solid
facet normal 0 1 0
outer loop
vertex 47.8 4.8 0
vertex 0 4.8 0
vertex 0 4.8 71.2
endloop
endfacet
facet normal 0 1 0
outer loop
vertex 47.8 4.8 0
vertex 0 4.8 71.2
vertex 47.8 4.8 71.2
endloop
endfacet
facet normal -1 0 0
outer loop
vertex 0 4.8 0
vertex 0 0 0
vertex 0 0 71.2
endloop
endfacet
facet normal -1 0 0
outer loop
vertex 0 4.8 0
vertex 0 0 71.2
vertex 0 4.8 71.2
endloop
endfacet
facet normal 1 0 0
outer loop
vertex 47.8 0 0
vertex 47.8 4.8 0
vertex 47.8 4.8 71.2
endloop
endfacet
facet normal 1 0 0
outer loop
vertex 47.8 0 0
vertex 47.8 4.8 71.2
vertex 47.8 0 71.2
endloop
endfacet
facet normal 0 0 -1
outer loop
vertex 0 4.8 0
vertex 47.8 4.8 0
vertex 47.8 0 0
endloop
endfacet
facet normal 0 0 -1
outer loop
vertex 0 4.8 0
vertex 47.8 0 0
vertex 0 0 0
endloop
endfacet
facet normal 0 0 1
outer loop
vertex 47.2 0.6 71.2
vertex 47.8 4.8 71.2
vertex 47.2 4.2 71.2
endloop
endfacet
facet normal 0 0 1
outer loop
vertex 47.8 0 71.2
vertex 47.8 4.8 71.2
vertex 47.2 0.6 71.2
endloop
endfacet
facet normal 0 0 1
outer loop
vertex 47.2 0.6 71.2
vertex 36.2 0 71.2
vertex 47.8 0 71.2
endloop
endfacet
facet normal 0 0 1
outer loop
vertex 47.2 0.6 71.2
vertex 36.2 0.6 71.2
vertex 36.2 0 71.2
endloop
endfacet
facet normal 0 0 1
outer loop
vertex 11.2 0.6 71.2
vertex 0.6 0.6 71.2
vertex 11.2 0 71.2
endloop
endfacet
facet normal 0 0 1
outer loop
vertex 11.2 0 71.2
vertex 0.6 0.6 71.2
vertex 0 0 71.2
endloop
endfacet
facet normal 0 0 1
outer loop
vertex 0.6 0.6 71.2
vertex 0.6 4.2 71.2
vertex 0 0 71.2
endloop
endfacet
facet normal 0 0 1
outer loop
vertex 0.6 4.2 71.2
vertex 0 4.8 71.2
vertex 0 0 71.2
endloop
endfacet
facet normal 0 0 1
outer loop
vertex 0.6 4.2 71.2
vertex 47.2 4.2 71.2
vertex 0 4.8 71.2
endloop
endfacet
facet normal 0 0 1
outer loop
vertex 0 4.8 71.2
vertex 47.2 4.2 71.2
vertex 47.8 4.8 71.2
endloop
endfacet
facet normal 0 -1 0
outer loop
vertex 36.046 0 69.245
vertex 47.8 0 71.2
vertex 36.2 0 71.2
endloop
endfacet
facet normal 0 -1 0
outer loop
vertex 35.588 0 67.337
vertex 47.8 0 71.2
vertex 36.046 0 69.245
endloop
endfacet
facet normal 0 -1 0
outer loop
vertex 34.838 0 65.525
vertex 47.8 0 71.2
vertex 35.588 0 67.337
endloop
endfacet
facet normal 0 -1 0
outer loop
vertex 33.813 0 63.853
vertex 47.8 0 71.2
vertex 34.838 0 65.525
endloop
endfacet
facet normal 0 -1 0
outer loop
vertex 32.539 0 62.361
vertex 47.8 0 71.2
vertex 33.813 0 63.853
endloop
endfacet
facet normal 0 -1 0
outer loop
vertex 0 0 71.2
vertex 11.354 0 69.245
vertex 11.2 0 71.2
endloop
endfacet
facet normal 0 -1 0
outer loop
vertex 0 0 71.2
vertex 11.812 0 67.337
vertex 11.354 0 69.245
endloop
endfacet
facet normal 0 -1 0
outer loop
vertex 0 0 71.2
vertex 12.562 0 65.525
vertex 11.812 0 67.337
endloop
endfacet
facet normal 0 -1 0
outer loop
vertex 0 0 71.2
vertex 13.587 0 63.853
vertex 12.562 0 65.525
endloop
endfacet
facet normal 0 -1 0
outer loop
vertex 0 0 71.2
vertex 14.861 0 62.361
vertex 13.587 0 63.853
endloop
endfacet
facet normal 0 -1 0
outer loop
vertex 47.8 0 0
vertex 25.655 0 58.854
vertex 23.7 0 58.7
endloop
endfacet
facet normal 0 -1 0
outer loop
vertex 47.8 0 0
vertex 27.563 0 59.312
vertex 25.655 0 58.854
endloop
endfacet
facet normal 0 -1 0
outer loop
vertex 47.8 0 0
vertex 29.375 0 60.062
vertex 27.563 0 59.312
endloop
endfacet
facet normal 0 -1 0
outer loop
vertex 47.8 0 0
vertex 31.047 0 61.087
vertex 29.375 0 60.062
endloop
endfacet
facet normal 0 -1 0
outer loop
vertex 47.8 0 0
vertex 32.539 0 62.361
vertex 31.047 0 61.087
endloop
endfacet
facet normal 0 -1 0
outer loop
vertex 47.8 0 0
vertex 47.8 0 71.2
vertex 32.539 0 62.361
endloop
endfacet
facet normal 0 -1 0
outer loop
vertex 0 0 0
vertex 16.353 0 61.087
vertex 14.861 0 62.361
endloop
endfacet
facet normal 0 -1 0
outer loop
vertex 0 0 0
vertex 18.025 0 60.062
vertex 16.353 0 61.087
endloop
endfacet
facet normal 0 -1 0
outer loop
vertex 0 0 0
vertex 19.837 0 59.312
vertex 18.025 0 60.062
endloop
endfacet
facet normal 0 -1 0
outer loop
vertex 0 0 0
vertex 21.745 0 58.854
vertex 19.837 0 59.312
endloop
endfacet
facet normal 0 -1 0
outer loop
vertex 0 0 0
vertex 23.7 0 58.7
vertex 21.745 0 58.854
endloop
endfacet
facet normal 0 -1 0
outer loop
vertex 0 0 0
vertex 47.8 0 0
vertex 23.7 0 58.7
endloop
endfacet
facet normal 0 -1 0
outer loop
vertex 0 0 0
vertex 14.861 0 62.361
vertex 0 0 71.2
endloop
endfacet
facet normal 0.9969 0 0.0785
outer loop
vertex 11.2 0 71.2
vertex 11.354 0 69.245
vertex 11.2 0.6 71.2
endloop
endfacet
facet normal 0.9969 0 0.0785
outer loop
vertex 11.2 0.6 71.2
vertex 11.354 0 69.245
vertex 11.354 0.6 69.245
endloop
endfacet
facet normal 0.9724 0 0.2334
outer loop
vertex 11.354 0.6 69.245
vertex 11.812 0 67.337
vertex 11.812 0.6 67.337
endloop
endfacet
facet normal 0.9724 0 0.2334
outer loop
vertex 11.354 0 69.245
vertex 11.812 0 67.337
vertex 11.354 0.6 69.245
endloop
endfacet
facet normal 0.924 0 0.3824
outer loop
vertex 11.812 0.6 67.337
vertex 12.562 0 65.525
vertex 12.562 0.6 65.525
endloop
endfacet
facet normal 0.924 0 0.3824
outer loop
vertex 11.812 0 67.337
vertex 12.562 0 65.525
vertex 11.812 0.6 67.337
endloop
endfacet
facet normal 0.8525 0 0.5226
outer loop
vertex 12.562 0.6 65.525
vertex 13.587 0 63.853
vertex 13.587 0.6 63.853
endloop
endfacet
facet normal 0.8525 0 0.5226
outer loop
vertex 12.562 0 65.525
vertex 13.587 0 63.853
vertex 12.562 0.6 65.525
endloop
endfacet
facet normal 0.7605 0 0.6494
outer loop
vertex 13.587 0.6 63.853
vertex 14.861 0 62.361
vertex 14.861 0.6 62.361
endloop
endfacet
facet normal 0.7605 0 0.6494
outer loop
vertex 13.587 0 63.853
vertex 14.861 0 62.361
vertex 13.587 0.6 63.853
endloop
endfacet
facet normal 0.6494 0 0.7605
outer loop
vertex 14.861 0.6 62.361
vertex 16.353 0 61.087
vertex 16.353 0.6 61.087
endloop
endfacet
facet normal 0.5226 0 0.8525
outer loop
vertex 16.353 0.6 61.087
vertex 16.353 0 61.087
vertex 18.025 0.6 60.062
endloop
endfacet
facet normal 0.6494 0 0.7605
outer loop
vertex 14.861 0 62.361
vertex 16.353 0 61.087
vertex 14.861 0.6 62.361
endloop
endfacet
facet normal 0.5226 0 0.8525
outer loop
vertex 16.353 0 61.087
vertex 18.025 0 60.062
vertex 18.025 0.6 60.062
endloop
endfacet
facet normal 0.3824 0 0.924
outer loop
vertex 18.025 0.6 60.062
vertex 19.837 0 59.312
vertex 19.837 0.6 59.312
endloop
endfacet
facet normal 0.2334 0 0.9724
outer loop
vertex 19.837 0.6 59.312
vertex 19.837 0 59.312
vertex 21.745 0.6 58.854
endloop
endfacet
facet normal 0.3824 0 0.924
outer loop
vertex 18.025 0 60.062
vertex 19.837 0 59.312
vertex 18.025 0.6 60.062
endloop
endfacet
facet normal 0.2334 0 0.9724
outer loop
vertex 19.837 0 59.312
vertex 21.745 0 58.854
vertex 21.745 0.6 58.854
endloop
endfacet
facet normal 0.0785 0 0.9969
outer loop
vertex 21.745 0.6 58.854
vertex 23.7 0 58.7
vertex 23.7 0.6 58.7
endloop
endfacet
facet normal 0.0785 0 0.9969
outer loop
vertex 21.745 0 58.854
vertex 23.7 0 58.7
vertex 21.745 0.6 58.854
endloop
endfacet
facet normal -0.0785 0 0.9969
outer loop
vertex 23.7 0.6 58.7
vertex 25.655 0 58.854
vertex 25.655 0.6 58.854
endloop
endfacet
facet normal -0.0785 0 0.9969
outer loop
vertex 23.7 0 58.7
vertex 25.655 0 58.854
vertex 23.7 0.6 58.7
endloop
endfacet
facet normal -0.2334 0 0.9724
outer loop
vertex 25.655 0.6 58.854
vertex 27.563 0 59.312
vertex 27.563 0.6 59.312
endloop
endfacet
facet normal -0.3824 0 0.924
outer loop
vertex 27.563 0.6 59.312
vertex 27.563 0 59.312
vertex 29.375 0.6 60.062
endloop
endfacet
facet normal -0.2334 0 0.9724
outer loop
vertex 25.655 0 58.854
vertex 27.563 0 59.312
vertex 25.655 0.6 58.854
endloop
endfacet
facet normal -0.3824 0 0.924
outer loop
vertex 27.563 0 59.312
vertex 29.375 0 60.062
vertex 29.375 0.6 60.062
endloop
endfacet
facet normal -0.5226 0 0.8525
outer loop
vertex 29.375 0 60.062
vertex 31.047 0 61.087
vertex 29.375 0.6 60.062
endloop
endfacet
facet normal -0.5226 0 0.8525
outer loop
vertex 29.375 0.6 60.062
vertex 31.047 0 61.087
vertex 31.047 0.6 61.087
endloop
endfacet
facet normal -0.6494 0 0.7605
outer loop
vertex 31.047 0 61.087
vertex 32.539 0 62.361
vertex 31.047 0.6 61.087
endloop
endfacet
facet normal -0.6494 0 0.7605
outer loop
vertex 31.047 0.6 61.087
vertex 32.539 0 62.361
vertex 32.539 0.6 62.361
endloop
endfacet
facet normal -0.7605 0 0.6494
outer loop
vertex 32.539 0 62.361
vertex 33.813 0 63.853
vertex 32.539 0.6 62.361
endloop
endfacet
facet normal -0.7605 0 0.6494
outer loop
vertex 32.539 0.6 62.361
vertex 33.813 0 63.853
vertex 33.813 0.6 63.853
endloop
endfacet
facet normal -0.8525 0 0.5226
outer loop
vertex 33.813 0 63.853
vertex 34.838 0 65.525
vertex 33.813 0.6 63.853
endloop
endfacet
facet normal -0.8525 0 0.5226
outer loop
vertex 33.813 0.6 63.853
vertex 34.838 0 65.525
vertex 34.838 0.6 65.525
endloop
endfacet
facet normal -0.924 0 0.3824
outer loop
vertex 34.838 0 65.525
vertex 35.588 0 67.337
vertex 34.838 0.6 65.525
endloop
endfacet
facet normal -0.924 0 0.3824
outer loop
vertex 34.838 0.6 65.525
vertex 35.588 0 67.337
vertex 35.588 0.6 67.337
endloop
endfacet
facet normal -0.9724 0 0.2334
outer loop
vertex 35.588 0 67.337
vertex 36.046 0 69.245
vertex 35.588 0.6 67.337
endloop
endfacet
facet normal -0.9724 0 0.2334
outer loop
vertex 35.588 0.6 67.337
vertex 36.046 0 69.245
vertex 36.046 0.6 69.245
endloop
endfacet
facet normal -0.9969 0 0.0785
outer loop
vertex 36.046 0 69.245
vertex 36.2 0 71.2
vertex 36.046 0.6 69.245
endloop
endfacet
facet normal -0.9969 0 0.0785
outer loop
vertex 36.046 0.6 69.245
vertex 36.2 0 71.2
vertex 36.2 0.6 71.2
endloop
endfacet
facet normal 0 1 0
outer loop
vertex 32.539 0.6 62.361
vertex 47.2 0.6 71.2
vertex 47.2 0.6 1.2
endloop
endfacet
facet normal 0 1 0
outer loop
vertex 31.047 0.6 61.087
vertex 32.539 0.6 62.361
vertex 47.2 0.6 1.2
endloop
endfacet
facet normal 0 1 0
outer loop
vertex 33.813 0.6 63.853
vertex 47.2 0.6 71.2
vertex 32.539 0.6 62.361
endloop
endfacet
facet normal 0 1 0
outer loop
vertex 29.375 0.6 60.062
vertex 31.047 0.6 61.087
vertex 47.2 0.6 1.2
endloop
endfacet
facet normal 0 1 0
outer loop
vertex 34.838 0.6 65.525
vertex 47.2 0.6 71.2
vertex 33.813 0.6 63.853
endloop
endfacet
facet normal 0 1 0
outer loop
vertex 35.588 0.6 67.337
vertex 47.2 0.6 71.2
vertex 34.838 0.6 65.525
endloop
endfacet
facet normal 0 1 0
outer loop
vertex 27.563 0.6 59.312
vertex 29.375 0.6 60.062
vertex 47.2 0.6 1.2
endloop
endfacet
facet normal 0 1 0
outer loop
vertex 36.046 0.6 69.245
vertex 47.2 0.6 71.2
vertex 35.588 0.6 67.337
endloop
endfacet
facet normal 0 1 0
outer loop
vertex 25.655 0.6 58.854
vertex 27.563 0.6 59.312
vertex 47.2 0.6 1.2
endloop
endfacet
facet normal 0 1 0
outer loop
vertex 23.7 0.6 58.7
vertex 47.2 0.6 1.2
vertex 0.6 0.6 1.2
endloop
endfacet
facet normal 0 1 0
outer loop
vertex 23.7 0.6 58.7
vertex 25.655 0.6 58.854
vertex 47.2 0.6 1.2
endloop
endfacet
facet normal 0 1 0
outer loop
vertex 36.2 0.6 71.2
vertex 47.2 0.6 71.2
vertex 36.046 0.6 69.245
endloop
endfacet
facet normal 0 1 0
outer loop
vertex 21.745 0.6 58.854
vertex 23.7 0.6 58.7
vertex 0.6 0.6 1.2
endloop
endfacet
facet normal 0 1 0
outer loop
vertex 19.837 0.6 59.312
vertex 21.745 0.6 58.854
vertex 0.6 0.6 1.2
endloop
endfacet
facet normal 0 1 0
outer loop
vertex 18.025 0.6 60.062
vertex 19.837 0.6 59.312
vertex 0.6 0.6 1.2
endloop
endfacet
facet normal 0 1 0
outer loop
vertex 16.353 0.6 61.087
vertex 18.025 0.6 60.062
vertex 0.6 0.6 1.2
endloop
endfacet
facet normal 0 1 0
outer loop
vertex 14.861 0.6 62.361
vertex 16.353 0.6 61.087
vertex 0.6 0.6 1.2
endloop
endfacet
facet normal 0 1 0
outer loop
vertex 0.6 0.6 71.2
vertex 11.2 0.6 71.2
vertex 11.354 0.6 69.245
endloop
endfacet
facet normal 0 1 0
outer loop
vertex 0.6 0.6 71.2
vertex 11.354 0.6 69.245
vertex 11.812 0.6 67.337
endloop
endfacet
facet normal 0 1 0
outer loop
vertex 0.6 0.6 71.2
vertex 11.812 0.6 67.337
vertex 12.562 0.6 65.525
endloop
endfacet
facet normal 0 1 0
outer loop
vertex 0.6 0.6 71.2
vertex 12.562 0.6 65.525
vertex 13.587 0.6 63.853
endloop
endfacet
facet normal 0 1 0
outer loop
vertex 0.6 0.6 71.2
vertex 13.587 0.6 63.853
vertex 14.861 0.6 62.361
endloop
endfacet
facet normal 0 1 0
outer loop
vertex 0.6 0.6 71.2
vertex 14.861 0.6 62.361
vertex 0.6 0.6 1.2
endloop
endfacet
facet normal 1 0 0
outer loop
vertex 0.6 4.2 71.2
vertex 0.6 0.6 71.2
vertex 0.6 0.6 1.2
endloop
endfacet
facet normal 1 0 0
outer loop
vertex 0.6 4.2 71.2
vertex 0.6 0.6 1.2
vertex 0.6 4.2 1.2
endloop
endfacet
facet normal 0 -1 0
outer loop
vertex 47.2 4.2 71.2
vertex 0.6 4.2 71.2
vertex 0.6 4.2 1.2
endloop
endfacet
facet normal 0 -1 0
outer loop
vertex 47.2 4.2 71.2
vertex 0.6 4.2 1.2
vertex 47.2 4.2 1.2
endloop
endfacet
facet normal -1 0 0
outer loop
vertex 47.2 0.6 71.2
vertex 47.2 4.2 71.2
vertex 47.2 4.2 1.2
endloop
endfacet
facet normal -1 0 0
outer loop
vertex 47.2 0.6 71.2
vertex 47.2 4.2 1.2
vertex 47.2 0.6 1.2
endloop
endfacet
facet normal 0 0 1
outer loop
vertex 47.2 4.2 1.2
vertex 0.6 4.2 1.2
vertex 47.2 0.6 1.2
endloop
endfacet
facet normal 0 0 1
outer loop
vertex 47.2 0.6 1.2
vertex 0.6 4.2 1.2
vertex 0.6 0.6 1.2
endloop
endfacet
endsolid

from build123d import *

# Parameters (mm, degrees)
SKETCH_W        = 47.8
SKETCH_H        = 4.8
PAD_DEPTH       = 71.2
SKETCH001_W     = 46.6
SKETCH001_H     = 3.6
POCKET_DEPTH    = 70
SKETCH002_R     = 12.5
POCKET001_DEPTH = 0.6


with BuildPart() as part:
    # Sketch → Pad (new body)
    with BuildSketch(Plane.XY):
        with Locations((23.9, 2.4)):
            Rectangle(SKETCH_W, SKETCH_H)
    extrude(amount=PAD_DEPTH)

    # Sketch001 (on Face6 of Pad) → Pocket (cut)
    with BuildSketch(Plane.XY.offset(71.2)):
        with Locations((23.9, 2.4)):
            Rectangle(SKETCH001_W, SKETCH001_H)
    extrude(amount=-POCKET_DEPTH, mode=Mode.SUBTRACT)

    # Sketch002 (on Face6 of Pocket) → Pocket001 (cut)
    with BuildSketch(Plane.XZ):
        with Locations((23.7, 71.2)):
            Circle(SKETCH002_R)
    extrude(amount=-POCKET001_DEPTH, mode=Mode.SUBTRACT)


solid = part.part
